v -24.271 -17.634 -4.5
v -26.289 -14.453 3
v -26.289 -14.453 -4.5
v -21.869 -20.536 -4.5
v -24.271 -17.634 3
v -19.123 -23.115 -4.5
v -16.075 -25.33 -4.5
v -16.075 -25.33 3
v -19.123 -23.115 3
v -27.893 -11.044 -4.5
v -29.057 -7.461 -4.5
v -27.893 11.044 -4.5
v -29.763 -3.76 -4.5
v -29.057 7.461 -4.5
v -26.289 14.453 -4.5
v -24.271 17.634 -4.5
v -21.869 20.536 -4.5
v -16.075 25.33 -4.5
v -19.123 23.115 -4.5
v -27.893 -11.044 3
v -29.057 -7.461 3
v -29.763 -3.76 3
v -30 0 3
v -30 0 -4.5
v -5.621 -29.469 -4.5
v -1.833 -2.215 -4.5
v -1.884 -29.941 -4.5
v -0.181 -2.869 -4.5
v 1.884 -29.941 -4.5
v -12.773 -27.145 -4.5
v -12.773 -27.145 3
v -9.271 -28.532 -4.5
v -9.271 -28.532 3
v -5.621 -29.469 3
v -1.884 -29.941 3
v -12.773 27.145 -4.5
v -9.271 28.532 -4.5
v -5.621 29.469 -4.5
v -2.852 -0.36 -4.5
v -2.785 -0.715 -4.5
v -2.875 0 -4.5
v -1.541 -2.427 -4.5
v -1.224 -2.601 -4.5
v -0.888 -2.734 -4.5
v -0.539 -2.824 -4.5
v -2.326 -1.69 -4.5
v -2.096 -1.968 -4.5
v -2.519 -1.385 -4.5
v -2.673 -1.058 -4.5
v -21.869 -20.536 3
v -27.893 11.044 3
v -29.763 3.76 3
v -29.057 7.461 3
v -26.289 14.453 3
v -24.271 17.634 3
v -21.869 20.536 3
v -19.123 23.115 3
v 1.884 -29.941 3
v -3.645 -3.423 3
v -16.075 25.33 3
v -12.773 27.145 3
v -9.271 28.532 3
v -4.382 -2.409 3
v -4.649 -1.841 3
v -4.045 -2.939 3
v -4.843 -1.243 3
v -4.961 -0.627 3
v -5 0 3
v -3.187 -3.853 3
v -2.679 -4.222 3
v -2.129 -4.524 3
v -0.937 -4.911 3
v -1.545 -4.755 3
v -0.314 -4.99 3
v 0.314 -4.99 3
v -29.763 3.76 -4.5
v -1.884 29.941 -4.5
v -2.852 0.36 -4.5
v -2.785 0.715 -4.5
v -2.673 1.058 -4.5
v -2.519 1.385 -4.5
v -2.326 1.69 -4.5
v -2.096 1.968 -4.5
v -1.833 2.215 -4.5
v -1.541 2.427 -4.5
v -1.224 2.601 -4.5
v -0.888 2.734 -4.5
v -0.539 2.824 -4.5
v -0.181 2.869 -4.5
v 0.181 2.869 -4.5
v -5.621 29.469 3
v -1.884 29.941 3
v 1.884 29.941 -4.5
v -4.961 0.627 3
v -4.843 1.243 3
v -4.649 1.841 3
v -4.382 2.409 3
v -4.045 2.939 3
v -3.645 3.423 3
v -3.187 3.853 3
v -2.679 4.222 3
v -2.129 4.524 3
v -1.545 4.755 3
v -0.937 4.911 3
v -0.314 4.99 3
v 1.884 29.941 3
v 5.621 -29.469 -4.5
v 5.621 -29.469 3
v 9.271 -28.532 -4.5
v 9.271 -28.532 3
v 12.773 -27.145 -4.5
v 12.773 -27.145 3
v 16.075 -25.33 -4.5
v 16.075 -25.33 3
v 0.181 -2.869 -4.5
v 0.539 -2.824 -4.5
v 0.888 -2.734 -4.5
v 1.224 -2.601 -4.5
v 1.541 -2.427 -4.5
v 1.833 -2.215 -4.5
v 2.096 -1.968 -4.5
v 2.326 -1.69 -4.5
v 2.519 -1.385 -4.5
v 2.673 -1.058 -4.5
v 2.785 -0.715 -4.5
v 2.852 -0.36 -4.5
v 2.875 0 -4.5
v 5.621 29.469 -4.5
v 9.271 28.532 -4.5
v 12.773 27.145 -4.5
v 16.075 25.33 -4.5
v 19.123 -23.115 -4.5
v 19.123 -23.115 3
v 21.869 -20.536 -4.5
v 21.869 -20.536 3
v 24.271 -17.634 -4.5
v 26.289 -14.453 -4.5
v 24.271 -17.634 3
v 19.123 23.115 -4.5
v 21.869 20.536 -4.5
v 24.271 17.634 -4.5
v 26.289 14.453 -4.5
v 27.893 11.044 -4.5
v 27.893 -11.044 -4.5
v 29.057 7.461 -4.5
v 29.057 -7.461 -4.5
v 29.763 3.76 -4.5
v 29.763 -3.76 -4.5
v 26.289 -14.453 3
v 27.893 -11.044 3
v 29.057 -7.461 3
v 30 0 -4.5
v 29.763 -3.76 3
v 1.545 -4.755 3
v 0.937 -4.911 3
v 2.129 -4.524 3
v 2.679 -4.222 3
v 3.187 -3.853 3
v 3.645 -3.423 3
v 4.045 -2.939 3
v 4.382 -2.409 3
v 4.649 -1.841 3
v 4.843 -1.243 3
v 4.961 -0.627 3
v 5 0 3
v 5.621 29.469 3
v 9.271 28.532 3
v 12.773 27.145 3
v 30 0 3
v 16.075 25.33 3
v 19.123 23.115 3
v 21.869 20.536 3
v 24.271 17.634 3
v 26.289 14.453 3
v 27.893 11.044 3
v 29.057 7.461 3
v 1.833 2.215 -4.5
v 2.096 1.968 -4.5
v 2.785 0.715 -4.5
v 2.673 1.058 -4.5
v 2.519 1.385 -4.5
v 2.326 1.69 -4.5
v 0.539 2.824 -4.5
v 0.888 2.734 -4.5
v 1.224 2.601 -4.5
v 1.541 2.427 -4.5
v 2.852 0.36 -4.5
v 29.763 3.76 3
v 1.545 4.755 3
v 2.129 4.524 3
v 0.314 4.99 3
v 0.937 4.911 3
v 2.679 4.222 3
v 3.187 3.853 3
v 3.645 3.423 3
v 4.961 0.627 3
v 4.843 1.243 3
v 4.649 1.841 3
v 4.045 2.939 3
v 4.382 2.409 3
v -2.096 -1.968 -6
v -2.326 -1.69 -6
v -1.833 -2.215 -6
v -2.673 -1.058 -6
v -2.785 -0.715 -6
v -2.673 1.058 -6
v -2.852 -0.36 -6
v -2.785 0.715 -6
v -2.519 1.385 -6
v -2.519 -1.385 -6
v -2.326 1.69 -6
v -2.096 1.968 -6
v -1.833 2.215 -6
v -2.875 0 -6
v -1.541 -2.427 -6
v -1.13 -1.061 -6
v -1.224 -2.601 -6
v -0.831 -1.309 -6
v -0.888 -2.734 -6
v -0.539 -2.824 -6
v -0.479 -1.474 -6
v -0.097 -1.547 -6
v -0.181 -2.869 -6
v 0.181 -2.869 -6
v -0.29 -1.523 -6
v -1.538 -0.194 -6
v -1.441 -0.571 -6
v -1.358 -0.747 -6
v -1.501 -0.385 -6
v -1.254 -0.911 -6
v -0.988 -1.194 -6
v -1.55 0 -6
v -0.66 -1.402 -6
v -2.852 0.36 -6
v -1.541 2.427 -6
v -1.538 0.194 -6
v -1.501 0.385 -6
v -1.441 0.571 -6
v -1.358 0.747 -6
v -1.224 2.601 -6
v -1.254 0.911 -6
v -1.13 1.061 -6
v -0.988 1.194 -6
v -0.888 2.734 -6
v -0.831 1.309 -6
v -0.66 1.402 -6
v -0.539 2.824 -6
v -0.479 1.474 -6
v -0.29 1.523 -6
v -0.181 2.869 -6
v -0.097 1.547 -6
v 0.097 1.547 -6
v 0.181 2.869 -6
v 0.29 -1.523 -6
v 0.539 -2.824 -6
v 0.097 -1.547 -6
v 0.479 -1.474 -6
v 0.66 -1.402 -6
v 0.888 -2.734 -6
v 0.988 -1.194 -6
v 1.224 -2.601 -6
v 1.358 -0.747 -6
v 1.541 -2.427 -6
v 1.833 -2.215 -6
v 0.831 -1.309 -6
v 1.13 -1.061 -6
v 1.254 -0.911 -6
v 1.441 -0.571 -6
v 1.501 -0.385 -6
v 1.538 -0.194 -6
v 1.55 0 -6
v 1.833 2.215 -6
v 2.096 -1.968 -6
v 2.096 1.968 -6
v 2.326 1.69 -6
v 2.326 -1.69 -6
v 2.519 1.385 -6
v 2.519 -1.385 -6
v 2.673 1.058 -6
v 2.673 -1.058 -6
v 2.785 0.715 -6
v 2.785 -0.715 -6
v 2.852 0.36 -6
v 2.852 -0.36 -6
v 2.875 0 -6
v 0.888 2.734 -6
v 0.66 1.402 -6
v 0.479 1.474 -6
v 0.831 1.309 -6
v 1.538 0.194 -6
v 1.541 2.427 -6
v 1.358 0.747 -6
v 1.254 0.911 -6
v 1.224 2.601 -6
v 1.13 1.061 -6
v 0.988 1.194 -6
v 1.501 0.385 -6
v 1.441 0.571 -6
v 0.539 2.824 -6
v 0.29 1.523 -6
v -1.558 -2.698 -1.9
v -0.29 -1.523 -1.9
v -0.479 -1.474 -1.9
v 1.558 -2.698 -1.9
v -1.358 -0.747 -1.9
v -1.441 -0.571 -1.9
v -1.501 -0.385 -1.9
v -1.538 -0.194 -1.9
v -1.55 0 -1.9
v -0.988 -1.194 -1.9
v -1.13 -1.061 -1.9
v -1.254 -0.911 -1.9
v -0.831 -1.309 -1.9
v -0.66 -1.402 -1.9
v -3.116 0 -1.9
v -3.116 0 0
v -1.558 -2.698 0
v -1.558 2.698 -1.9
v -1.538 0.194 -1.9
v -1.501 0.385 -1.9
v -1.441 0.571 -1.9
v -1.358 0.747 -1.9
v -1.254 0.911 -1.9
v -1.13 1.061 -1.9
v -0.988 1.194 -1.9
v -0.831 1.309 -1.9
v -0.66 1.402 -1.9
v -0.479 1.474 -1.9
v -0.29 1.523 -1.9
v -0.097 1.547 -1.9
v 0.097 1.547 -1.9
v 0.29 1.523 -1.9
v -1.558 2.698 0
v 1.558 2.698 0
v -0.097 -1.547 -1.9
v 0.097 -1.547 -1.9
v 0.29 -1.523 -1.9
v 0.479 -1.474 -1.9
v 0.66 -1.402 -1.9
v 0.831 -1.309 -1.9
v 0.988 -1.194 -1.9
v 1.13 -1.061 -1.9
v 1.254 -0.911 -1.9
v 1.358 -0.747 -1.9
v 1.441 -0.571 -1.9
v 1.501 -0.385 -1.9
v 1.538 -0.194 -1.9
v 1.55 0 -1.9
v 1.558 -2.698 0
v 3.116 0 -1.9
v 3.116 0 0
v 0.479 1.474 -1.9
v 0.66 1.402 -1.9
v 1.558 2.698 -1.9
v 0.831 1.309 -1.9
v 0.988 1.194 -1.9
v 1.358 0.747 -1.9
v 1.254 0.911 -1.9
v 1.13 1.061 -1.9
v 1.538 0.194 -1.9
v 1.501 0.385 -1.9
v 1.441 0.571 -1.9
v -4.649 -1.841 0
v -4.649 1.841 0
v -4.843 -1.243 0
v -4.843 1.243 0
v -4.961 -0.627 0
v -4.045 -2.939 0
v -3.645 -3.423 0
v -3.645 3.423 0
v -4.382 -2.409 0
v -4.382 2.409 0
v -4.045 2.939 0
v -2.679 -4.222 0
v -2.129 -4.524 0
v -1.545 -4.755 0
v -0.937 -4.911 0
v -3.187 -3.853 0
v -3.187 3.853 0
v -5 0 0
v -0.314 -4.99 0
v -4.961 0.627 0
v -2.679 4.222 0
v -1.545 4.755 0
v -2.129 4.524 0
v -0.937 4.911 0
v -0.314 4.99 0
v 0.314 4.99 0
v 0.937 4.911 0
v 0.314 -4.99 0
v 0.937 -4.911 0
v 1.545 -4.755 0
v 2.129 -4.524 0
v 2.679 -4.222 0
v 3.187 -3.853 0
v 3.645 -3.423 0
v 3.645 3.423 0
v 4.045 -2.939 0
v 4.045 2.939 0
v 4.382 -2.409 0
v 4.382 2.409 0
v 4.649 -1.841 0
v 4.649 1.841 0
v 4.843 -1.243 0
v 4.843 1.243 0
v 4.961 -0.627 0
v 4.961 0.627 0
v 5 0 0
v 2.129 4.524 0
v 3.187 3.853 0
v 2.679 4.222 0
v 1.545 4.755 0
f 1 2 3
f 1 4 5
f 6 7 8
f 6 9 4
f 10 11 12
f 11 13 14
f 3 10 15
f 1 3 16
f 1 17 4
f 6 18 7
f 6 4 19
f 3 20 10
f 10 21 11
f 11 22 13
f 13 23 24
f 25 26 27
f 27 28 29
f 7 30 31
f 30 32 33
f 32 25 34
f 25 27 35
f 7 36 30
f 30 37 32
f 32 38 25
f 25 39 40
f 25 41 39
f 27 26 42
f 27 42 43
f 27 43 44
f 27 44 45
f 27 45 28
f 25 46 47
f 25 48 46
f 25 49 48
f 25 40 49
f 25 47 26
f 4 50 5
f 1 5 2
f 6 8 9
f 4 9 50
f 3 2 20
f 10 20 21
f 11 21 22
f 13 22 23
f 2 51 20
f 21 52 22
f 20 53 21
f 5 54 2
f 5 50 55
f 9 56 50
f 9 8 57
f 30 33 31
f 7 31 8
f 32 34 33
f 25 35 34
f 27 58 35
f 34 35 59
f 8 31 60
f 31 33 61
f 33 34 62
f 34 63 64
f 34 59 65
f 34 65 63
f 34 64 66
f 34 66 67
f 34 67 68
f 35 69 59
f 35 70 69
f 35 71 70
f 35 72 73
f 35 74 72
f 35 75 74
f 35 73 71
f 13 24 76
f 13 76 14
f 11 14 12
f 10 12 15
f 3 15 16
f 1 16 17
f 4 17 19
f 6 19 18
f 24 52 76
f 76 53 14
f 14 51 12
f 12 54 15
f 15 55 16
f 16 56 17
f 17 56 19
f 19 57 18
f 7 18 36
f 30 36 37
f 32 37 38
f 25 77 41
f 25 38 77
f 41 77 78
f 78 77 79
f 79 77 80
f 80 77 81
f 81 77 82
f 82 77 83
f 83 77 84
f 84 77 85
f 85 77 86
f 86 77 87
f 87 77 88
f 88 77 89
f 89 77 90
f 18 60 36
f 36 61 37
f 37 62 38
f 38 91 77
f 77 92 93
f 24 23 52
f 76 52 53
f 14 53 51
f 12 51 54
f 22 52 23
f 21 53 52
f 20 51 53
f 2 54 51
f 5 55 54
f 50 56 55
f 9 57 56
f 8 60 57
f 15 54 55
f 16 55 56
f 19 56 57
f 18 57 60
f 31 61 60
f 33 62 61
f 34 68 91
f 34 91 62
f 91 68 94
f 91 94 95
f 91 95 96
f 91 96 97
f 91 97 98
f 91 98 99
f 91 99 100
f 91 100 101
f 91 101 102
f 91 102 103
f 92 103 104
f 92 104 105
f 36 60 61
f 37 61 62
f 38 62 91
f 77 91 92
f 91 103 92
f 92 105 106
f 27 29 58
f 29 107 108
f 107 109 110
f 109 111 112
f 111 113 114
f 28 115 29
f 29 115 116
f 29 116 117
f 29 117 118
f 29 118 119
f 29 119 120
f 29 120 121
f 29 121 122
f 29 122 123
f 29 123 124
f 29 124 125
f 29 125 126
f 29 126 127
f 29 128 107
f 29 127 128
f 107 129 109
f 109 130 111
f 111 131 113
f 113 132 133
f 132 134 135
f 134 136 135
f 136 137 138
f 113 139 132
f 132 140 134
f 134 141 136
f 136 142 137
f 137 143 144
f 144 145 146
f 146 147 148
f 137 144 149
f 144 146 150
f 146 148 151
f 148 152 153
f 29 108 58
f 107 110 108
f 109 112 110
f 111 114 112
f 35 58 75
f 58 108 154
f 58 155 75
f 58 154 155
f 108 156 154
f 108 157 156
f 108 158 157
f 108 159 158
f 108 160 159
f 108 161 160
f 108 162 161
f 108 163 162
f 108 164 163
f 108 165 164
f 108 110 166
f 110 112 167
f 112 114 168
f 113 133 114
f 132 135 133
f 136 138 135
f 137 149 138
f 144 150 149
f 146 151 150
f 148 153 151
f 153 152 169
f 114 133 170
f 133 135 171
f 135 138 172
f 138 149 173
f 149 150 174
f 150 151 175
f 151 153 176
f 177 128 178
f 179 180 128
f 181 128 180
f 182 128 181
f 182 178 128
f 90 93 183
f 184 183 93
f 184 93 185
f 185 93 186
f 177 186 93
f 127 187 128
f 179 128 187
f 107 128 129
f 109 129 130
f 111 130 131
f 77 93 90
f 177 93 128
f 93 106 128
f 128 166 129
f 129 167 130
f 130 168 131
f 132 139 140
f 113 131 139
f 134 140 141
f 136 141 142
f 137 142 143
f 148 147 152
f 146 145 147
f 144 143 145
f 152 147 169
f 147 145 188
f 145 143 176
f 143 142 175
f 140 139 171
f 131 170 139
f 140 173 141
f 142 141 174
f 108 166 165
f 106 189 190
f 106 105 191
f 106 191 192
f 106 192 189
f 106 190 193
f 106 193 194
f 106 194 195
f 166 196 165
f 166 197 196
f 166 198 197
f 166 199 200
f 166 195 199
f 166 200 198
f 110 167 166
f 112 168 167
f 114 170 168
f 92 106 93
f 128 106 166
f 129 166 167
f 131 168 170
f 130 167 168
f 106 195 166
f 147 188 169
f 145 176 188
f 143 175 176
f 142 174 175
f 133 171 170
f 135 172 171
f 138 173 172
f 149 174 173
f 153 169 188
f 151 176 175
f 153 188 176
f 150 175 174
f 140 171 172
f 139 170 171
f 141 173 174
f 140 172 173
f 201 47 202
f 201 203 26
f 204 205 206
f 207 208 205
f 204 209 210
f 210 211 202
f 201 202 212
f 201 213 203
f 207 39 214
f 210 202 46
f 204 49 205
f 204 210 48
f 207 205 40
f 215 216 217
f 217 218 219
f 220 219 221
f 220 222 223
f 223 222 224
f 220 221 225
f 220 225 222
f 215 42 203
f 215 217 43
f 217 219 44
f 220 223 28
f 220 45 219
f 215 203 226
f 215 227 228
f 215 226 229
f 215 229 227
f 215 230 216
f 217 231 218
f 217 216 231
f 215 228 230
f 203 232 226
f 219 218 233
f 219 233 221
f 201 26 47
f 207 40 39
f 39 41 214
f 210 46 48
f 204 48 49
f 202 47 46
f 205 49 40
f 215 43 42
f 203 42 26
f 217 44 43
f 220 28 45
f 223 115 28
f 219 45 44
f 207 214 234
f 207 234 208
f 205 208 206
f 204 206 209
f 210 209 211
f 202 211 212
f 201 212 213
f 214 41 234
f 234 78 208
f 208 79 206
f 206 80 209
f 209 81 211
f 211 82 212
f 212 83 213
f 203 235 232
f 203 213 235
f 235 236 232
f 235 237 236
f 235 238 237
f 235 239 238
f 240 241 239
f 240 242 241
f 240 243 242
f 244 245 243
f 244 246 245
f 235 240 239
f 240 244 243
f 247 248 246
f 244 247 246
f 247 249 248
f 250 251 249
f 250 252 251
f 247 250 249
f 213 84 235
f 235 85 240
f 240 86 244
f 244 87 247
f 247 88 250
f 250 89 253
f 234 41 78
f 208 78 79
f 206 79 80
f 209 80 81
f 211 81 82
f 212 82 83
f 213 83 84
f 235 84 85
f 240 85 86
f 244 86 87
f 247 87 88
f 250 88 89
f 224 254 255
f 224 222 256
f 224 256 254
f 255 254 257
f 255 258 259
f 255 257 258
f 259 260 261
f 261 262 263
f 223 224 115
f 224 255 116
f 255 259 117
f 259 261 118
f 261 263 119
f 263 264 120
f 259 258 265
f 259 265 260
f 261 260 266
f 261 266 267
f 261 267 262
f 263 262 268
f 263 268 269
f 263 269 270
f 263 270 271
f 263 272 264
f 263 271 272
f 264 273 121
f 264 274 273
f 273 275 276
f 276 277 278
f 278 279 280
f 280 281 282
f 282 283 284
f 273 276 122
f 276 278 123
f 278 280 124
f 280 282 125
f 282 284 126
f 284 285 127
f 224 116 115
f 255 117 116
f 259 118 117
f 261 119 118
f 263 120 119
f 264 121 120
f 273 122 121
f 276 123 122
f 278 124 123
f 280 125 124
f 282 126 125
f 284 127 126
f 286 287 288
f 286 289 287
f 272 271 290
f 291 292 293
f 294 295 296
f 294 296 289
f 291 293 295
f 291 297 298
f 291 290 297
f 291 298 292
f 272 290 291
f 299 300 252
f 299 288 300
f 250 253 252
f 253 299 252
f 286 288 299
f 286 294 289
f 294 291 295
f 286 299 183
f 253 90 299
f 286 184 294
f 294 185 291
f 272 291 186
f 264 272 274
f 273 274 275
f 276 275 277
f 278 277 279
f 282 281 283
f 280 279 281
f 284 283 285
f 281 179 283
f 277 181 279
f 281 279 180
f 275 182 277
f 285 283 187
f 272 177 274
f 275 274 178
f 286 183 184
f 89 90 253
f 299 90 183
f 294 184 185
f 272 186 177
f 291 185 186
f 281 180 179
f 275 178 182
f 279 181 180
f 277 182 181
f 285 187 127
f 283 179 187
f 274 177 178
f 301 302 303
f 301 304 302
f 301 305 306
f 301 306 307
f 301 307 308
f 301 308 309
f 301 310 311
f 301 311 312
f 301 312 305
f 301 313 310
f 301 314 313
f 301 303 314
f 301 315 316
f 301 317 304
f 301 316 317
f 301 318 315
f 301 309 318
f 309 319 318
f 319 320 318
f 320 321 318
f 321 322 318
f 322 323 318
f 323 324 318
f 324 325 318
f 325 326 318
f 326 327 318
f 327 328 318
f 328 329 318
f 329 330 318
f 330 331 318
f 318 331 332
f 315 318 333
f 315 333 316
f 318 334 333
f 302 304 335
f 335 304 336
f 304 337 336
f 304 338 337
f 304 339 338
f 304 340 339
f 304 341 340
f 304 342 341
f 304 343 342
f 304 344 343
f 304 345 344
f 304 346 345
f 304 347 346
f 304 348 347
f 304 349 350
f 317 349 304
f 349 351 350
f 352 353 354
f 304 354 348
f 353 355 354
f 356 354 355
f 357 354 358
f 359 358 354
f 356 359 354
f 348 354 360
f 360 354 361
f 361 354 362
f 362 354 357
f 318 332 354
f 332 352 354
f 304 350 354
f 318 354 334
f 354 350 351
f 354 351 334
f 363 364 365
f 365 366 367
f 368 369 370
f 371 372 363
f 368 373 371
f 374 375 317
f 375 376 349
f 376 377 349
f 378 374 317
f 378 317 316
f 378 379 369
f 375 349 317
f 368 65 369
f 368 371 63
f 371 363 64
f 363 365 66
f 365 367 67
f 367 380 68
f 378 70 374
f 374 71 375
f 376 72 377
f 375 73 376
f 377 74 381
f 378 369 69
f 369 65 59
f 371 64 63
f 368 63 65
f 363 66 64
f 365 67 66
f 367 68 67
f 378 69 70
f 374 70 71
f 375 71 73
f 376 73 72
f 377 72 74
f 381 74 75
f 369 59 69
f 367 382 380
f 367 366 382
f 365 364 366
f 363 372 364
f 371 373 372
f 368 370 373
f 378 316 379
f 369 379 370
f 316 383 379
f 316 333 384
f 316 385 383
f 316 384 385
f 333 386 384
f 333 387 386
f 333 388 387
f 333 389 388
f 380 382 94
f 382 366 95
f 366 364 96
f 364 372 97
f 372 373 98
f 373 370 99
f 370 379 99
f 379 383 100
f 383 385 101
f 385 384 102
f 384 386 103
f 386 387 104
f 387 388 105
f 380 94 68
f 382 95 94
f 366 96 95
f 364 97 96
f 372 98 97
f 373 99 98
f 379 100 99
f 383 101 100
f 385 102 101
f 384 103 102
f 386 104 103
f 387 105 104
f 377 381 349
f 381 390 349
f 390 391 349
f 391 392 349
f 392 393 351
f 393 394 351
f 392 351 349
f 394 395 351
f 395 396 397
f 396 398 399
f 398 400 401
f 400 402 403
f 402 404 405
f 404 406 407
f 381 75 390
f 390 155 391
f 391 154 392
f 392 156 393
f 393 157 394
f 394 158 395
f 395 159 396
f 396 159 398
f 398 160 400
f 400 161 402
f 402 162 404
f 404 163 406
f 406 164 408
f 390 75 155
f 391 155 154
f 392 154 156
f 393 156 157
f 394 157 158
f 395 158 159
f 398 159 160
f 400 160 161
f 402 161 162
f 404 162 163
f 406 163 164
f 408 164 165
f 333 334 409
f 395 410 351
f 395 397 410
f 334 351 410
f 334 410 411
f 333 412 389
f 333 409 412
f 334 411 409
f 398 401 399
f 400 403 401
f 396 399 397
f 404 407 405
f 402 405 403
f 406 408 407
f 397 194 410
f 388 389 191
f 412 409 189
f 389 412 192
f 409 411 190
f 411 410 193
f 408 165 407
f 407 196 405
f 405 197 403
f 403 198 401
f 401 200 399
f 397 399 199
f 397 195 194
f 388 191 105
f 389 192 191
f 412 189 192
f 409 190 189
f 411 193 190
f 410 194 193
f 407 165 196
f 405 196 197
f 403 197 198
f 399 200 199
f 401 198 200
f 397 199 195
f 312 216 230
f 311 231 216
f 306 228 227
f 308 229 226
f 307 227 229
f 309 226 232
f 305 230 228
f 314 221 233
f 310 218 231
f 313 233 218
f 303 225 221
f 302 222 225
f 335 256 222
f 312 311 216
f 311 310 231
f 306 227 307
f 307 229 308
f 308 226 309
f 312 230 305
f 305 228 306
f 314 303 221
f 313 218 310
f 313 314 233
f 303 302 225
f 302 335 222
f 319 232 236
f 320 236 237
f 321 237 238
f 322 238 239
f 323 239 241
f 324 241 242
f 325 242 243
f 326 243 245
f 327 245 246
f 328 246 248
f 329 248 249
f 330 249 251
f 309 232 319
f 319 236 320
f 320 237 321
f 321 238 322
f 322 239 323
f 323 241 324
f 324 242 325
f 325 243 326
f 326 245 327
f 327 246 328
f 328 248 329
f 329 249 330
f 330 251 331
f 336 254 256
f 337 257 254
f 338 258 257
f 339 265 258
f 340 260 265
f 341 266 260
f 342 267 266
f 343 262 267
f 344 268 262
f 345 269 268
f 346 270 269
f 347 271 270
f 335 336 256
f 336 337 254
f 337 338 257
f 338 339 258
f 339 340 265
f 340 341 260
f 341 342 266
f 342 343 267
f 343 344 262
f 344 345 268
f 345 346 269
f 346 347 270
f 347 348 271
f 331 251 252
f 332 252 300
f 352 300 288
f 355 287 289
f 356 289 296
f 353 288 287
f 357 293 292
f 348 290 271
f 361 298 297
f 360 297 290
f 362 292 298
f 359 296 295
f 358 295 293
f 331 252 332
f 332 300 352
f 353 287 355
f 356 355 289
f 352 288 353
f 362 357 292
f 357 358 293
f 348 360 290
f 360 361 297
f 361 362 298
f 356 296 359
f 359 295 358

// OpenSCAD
$fn = 50;

difference() {
	union() {
		translate(v = [0, 0, -4.5]) {
			cylinder(h = 7.5, r = 30.0);
		}
		#translate(v = [0, 0, -6.0]) {
			cylinder(h = 6, r = 2.875);
		}
	}
	union() {
		translate(v = [0, 0, 0]) {
			rotate(a = [0, 0, 0]) {
				difference() {
					union() {
						translate(v = [0, 0, -1.9]) {
							linear_extrude(height = 1.9) {
								polygon(points = [[3.1158, 0.0], [1.5579000000000005, 2.698361953111554], [-1.5578999999999994, 2.6983619531115544], [-3.1158, 3.815754496783323e-16], [-1.5579000000000014, -2.6983619531115535], [1.557899999999998, -2.6983619531115552]]);
							}
						}
					}
					union();
				}
			}
		}
		#cylinder(h = 3, r = 5.0);
		#translate(v = [0, 0, -100.0]) {
			cylinder(h = 200, r = 1.55);
		}
	}
}
